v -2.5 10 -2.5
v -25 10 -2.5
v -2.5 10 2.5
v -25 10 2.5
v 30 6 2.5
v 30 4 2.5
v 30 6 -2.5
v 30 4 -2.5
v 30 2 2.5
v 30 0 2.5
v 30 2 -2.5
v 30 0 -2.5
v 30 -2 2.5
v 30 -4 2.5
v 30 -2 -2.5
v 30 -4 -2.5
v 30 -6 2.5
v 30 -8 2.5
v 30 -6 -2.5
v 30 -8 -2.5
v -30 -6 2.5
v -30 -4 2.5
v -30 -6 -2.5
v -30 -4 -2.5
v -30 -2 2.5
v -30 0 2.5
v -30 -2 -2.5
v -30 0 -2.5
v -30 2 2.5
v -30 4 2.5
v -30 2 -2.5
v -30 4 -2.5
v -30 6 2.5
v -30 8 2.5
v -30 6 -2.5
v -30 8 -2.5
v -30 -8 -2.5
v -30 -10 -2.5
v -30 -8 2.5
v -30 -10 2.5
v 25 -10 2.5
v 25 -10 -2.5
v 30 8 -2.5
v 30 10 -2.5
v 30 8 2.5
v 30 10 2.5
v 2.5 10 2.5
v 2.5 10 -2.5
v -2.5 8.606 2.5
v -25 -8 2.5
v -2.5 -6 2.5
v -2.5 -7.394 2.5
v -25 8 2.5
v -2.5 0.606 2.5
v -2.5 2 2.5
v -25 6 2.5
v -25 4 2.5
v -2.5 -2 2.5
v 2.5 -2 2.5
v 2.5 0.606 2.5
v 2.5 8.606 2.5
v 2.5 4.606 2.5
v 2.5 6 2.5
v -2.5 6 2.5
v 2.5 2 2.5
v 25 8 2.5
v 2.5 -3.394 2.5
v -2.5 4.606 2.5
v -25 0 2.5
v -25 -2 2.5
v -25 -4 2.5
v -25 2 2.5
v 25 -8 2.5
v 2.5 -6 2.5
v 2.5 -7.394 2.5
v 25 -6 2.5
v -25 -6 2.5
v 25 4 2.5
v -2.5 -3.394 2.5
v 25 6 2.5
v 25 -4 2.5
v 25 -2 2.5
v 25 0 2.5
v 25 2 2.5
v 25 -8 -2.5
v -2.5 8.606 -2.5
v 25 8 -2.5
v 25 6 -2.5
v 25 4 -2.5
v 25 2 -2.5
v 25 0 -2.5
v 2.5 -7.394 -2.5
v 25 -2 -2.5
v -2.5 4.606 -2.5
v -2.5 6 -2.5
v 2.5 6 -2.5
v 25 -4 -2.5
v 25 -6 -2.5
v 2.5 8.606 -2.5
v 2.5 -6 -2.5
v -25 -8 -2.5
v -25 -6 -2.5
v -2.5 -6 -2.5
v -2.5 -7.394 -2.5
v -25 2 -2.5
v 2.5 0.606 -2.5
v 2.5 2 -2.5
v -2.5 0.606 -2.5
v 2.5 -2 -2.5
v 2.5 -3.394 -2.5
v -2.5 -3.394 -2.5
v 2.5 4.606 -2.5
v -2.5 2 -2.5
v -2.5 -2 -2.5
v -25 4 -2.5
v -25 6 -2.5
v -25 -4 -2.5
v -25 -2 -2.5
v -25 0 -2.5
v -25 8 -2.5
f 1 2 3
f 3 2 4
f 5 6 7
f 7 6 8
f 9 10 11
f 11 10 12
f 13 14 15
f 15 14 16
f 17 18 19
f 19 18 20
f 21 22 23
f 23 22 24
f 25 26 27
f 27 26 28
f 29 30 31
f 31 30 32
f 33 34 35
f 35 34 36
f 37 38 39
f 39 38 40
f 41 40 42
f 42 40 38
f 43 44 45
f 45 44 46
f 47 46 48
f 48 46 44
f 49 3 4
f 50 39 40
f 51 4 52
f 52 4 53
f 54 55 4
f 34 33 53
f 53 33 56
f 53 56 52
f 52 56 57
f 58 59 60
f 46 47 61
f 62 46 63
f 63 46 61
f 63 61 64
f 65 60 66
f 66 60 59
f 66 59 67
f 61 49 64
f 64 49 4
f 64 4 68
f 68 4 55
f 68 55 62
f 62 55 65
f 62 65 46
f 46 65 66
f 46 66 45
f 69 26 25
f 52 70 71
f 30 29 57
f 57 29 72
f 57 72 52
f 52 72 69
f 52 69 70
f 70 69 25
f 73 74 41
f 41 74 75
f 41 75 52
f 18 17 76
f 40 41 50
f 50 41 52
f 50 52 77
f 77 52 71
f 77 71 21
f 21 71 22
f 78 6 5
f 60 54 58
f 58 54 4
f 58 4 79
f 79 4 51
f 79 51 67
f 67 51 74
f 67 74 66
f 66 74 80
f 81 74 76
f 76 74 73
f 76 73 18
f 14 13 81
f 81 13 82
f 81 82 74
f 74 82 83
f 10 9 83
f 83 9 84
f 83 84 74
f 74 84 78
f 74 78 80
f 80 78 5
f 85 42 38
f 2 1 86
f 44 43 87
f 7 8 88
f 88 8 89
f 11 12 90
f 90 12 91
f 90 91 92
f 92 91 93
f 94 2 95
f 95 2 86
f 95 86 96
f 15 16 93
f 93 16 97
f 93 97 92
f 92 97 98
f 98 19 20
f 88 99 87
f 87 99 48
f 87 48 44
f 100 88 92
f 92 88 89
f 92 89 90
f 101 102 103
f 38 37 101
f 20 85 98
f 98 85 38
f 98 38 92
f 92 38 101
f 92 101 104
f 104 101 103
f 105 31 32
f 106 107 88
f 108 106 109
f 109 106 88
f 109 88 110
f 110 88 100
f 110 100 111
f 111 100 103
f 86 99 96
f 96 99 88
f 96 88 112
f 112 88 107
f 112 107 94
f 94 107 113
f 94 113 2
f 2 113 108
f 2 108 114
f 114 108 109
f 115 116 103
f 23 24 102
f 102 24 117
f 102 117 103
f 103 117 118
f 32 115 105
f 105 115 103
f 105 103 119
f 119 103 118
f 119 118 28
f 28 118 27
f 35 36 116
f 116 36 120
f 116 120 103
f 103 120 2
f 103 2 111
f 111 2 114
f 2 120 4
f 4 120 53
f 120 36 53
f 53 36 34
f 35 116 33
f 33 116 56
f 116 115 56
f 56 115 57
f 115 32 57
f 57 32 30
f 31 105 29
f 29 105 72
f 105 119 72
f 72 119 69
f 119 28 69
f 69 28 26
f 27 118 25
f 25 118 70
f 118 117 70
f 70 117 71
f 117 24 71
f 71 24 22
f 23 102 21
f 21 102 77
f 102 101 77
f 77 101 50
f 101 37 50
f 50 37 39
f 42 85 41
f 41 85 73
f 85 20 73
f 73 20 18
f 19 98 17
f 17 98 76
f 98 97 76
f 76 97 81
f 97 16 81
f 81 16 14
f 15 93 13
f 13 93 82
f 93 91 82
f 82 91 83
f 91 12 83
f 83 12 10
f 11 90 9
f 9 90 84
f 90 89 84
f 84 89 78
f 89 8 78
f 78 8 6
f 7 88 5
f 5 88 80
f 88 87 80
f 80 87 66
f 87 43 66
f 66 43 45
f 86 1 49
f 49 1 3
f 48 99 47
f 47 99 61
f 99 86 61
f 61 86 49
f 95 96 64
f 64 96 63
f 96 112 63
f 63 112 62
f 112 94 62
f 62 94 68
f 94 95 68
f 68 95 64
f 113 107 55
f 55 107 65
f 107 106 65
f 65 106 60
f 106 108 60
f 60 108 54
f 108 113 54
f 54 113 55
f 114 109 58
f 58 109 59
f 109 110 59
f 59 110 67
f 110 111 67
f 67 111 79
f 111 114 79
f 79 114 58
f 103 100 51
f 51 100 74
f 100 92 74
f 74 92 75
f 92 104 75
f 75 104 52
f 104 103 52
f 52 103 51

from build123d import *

# Parameters (mm, degrees)
SKETCH1_W           = 60
SKETCH1_H           = 20
BOSS_EXTRUDE1_DEPTH = 2.5
SKETCH2_W           = 5
SKETCH2_H           = 2
CUT_EXTRUDE1_DEPTH  = 33.015621187
SKETCH3_W           = 5
SKETCH3_H           = 2
CUT_EXTRUDE2_DEPTH  = 5
SKETCH4_W           = 5
SKETCH4_H           = 1.394303276
CUT_EXTRUDE3_DEPTH  = 5


with BuildPart() as part:
    # Sketch1 → Boss-Extrude1 (new, symmetric)
    with BuildSketch(Plane.XY):
        Rectangle(SKETCH1_W, SKETCH1_H)
    extrude(amount=BOSS_EXTRUDE1_DEPTH, both=True)

    # Sketch2 → Cut-Extrude1 (cut, through all)
    with BuildSketch(Plane.XY.offset(2.5)):
        with Locations((-27.5, 5)):
            Rectangle(SKETCH2_W, SKETCH2_H)
        with Locations((-27.5, 9)):
            Rectangle(SKETCH2_W, SKETCH2_H)
        with Locations((-27.5, 1)):
            Rectangle(SKETCH2_W, SKETCH2_H)
        with Locations((-27.5, -3)):
            Rectangle(SKETCH2_W, SKETCH2_H)
        with Locations((-27.5, -7)):
            Rectangle(SKETCH2_W, SKETCH2_H)
    extrude(amount=-CUT_EXTRUDE1_DEPTH, mode=Mode.SUBTRACT)

    # Sketch3 → Cut-Extrude2 (cut)
    with BuildSketch(Plane.XY.offset(2.5)):
        with Locations((27.5, -9)):
            Rectangle(SKETCH3_W, SKETCH3_H)
        with Locations((27.5, -5)):
            Rectangle(SKETCH3_W, SKETCH3_H)
        with Locations((27.5, -1)):
            Rectangle(SKETCH3_W, SKETCH3_H)
        with Locations((27.5, 3)):
            Rectangle(SKETCH3_W, SKETCH3_H)
        with Locations((27.5, 7)):
            Rectangle(SKETCH3_W, SKETCH3_H)
    extrude(amount=-CUT_EXTRUDE2_DEPTH, mode=Mode.SUBTRACT)

    # Sketch4 → Cut-Extrude3 (cut)
    with BuildSketch(Plane.XY.offset(2.5)):
        with Locations((0, 9.302848362)):
            Rectangle(SKETCH4_W, SKETCH4_H)
        with Locations((0, 5.302848362)):
            Rectangle(SKETCH4_W, SKETCH4_H)
        with Locations((0, 1.302848362)):
            Rectangle(SKETCH4_W, SKETCH4_H)
        with Locations((0, -2.697151638)):
            Rectangle(SKETCH4_W, SKETCH4_H)
        with Locations((0, -6.697151638)):
            Rectangle(SKETCH4_W, SKETCH4_H)
    extrude(amount=-CUT_EXTRUDE3_DEPTH, mode=Mode.SUBTRACT)


solid = part.part
